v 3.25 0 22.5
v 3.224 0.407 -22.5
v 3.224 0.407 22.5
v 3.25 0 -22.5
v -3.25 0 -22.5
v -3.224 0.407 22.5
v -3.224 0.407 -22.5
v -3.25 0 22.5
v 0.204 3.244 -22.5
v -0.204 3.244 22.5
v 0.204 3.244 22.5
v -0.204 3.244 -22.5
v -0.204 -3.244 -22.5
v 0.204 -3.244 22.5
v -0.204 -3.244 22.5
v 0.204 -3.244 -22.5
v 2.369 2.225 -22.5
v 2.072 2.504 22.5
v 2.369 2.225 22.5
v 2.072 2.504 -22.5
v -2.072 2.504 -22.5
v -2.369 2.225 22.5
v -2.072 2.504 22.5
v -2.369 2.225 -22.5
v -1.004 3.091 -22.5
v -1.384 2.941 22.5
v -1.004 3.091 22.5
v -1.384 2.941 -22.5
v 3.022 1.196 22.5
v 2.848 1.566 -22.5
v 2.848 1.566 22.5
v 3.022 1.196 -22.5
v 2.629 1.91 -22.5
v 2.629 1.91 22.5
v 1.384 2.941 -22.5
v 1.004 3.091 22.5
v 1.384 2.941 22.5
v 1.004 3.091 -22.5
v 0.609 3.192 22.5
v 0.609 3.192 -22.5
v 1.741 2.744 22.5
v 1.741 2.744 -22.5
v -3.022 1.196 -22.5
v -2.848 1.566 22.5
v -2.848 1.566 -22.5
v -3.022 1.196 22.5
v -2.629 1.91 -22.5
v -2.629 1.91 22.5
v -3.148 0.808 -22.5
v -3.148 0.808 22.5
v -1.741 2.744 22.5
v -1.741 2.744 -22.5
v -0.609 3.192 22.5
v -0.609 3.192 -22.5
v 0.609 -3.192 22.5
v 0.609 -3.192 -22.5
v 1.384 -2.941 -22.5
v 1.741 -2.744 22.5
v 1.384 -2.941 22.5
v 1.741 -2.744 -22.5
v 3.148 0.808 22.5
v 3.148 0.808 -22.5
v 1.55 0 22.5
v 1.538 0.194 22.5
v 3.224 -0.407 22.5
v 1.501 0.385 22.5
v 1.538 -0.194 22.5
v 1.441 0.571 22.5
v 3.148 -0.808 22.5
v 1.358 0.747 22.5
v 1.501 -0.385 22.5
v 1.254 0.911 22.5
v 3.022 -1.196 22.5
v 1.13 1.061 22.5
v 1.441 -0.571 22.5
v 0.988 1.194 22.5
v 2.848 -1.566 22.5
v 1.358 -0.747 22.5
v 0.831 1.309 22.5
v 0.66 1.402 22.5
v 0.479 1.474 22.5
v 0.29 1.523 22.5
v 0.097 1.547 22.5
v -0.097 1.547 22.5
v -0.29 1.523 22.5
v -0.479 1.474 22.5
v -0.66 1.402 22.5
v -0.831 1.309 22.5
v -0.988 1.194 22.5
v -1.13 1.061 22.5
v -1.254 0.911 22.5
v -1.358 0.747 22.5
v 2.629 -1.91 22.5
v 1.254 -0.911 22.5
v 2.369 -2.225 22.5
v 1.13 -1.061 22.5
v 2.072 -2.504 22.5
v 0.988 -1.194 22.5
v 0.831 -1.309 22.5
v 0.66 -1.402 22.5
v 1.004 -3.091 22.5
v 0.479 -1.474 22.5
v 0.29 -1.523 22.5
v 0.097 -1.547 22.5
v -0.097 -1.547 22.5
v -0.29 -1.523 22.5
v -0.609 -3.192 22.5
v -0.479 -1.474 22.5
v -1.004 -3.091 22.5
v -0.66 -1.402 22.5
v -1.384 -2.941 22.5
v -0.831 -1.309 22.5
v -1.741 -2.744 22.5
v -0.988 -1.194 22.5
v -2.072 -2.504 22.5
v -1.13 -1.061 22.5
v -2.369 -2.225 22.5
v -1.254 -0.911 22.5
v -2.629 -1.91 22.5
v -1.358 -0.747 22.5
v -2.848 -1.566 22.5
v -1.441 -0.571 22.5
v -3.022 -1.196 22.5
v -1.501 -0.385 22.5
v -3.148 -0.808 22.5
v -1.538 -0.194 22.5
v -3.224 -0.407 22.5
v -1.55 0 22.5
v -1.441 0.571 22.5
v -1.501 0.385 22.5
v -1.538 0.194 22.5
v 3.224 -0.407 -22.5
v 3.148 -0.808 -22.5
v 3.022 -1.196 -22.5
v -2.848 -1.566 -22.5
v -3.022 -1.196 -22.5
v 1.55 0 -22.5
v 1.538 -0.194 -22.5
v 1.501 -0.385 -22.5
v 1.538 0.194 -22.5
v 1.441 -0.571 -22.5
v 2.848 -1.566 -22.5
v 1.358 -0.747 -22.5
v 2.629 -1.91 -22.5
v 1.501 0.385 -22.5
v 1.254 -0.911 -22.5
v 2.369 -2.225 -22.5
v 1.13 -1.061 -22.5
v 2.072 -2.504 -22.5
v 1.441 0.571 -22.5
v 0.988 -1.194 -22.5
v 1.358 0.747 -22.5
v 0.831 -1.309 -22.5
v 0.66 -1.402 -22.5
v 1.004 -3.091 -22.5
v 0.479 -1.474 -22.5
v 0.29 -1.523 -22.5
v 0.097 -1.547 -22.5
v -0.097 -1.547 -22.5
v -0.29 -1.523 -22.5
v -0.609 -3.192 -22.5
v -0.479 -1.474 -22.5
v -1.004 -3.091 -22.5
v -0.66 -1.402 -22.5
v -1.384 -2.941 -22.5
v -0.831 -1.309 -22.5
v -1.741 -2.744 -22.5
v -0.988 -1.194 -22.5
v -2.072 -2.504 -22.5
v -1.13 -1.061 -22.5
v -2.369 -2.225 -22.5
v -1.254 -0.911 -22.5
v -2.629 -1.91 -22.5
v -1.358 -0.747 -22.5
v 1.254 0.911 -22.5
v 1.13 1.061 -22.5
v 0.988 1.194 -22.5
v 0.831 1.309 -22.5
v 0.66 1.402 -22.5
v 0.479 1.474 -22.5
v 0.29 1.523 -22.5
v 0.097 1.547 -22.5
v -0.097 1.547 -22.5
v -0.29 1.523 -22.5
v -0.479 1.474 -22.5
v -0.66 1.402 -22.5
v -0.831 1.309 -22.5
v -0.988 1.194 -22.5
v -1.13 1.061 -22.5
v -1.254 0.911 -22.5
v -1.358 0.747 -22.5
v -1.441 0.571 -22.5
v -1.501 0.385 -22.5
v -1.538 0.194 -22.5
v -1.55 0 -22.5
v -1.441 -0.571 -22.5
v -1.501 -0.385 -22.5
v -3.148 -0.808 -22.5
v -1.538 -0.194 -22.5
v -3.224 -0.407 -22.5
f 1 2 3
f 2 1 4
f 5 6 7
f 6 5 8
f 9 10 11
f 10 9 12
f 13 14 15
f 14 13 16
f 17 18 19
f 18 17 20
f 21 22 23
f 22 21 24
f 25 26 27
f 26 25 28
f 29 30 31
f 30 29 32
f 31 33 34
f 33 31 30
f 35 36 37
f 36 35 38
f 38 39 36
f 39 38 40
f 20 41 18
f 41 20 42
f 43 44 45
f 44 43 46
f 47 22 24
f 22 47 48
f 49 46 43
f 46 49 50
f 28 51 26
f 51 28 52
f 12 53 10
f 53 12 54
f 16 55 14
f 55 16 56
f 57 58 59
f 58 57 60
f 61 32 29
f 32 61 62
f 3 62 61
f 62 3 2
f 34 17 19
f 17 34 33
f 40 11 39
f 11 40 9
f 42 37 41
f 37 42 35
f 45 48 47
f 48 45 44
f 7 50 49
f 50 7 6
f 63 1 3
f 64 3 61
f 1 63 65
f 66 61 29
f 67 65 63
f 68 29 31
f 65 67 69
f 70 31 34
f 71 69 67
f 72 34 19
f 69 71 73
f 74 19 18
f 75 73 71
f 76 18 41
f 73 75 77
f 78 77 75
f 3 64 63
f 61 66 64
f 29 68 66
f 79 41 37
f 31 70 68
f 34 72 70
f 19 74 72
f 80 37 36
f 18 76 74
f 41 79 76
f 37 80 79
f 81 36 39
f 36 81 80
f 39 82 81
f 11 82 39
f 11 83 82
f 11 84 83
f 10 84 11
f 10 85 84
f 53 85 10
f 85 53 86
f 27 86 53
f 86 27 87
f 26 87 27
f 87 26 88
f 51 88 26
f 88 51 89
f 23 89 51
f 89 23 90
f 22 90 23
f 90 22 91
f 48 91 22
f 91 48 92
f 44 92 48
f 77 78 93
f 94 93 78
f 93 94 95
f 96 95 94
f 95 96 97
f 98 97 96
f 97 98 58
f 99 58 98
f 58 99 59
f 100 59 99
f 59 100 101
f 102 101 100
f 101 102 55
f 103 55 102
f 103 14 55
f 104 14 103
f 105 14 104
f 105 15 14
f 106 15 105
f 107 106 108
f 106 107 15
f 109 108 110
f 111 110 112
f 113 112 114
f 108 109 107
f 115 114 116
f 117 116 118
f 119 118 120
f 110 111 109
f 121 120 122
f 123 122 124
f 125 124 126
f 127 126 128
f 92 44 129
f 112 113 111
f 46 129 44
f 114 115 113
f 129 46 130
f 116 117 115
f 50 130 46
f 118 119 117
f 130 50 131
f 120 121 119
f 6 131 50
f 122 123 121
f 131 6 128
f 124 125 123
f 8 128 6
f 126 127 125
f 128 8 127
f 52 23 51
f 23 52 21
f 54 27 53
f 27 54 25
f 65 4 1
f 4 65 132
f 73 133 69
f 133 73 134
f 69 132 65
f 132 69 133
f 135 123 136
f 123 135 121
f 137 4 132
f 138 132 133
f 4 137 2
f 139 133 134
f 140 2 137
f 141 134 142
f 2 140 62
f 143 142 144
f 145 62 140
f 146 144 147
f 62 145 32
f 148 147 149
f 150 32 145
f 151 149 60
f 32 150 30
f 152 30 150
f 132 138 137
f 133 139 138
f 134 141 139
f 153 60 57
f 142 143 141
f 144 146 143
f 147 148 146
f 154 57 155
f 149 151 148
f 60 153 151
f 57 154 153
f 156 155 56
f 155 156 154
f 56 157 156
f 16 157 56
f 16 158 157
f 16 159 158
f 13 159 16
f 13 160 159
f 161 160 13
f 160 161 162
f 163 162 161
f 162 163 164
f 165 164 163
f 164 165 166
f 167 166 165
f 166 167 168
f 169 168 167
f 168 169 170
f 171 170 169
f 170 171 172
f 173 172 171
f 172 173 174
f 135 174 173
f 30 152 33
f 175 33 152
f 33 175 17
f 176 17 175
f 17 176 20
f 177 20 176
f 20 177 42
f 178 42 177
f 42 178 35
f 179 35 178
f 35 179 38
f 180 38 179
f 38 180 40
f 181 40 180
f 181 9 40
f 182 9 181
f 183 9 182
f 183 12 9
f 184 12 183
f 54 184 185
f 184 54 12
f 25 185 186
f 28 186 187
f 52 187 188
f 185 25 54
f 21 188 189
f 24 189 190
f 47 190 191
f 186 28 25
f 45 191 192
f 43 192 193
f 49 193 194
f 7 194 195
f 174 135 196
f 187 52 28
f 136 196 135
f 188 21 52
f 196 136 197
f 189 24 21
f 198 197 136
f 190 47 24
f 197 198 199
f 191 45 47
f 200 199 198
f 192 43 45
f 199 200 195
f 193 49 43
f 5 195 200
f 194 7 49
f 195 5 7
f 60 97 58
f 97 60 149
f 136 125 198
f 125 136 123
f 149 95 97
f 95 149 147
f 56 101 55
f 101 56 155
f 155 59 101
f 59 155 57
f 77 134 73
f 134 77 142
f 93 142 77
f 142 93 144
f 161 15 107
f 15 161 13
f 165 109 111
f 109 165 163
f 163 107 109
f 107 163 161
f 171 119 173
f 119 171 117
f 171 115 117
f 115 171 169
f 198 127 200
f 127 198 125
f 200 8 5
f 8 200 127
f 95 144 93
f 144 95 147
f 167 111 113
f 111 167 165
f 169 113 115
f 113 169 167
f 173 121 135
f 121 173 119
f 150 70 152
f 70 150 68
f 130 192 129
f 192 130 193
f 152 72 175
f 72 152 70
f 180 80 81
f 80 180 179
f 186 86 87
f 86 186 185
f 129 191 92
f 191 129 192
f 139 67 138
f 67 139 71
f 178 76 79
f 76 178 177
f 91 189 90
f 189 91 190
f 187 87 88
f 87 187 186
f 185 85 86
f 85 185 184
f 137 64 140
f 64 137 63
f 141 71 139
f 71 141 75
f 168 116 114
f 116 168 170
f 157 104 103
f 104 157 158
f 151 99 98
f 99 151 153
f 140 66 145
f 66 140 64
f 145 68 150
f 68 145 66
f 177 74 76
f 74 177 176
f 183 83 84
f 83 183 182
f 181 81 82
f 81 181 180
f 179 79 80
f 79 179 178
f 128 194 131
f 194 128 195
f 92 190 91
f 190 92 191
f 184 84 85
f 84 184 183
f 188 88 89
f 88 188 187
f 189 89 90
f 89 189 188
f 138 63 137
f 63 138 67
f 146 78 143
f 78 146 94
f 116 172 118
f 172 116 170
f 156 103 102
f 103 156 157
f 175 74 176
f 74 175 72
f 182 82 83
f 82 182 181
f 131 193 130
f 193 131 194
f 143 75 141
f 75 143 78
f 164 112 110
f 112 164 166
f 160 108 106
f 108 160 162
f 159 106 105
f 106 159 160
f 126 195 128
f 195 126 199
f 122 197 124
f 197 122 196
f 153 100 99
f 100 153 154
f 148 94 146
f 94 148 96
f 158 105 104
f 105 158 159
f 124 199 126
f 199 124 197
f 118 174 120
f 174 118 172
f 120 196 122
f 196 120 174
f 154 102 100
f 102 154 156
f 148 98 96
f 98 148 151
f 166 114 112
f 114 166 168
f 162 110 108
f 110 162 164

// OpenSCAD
$fn = 50;


difference() {
	union() {
		translate(v = [0, 0, -22.5000000000]) {
			cylinder(h = 45, r = 3.2500000000);
		}
	}
	union() {
		translate(v = [0, 0, -100.0000000000]) {
			cylinder(h = 200, r = 1.5500000000);
		}
	}
}
